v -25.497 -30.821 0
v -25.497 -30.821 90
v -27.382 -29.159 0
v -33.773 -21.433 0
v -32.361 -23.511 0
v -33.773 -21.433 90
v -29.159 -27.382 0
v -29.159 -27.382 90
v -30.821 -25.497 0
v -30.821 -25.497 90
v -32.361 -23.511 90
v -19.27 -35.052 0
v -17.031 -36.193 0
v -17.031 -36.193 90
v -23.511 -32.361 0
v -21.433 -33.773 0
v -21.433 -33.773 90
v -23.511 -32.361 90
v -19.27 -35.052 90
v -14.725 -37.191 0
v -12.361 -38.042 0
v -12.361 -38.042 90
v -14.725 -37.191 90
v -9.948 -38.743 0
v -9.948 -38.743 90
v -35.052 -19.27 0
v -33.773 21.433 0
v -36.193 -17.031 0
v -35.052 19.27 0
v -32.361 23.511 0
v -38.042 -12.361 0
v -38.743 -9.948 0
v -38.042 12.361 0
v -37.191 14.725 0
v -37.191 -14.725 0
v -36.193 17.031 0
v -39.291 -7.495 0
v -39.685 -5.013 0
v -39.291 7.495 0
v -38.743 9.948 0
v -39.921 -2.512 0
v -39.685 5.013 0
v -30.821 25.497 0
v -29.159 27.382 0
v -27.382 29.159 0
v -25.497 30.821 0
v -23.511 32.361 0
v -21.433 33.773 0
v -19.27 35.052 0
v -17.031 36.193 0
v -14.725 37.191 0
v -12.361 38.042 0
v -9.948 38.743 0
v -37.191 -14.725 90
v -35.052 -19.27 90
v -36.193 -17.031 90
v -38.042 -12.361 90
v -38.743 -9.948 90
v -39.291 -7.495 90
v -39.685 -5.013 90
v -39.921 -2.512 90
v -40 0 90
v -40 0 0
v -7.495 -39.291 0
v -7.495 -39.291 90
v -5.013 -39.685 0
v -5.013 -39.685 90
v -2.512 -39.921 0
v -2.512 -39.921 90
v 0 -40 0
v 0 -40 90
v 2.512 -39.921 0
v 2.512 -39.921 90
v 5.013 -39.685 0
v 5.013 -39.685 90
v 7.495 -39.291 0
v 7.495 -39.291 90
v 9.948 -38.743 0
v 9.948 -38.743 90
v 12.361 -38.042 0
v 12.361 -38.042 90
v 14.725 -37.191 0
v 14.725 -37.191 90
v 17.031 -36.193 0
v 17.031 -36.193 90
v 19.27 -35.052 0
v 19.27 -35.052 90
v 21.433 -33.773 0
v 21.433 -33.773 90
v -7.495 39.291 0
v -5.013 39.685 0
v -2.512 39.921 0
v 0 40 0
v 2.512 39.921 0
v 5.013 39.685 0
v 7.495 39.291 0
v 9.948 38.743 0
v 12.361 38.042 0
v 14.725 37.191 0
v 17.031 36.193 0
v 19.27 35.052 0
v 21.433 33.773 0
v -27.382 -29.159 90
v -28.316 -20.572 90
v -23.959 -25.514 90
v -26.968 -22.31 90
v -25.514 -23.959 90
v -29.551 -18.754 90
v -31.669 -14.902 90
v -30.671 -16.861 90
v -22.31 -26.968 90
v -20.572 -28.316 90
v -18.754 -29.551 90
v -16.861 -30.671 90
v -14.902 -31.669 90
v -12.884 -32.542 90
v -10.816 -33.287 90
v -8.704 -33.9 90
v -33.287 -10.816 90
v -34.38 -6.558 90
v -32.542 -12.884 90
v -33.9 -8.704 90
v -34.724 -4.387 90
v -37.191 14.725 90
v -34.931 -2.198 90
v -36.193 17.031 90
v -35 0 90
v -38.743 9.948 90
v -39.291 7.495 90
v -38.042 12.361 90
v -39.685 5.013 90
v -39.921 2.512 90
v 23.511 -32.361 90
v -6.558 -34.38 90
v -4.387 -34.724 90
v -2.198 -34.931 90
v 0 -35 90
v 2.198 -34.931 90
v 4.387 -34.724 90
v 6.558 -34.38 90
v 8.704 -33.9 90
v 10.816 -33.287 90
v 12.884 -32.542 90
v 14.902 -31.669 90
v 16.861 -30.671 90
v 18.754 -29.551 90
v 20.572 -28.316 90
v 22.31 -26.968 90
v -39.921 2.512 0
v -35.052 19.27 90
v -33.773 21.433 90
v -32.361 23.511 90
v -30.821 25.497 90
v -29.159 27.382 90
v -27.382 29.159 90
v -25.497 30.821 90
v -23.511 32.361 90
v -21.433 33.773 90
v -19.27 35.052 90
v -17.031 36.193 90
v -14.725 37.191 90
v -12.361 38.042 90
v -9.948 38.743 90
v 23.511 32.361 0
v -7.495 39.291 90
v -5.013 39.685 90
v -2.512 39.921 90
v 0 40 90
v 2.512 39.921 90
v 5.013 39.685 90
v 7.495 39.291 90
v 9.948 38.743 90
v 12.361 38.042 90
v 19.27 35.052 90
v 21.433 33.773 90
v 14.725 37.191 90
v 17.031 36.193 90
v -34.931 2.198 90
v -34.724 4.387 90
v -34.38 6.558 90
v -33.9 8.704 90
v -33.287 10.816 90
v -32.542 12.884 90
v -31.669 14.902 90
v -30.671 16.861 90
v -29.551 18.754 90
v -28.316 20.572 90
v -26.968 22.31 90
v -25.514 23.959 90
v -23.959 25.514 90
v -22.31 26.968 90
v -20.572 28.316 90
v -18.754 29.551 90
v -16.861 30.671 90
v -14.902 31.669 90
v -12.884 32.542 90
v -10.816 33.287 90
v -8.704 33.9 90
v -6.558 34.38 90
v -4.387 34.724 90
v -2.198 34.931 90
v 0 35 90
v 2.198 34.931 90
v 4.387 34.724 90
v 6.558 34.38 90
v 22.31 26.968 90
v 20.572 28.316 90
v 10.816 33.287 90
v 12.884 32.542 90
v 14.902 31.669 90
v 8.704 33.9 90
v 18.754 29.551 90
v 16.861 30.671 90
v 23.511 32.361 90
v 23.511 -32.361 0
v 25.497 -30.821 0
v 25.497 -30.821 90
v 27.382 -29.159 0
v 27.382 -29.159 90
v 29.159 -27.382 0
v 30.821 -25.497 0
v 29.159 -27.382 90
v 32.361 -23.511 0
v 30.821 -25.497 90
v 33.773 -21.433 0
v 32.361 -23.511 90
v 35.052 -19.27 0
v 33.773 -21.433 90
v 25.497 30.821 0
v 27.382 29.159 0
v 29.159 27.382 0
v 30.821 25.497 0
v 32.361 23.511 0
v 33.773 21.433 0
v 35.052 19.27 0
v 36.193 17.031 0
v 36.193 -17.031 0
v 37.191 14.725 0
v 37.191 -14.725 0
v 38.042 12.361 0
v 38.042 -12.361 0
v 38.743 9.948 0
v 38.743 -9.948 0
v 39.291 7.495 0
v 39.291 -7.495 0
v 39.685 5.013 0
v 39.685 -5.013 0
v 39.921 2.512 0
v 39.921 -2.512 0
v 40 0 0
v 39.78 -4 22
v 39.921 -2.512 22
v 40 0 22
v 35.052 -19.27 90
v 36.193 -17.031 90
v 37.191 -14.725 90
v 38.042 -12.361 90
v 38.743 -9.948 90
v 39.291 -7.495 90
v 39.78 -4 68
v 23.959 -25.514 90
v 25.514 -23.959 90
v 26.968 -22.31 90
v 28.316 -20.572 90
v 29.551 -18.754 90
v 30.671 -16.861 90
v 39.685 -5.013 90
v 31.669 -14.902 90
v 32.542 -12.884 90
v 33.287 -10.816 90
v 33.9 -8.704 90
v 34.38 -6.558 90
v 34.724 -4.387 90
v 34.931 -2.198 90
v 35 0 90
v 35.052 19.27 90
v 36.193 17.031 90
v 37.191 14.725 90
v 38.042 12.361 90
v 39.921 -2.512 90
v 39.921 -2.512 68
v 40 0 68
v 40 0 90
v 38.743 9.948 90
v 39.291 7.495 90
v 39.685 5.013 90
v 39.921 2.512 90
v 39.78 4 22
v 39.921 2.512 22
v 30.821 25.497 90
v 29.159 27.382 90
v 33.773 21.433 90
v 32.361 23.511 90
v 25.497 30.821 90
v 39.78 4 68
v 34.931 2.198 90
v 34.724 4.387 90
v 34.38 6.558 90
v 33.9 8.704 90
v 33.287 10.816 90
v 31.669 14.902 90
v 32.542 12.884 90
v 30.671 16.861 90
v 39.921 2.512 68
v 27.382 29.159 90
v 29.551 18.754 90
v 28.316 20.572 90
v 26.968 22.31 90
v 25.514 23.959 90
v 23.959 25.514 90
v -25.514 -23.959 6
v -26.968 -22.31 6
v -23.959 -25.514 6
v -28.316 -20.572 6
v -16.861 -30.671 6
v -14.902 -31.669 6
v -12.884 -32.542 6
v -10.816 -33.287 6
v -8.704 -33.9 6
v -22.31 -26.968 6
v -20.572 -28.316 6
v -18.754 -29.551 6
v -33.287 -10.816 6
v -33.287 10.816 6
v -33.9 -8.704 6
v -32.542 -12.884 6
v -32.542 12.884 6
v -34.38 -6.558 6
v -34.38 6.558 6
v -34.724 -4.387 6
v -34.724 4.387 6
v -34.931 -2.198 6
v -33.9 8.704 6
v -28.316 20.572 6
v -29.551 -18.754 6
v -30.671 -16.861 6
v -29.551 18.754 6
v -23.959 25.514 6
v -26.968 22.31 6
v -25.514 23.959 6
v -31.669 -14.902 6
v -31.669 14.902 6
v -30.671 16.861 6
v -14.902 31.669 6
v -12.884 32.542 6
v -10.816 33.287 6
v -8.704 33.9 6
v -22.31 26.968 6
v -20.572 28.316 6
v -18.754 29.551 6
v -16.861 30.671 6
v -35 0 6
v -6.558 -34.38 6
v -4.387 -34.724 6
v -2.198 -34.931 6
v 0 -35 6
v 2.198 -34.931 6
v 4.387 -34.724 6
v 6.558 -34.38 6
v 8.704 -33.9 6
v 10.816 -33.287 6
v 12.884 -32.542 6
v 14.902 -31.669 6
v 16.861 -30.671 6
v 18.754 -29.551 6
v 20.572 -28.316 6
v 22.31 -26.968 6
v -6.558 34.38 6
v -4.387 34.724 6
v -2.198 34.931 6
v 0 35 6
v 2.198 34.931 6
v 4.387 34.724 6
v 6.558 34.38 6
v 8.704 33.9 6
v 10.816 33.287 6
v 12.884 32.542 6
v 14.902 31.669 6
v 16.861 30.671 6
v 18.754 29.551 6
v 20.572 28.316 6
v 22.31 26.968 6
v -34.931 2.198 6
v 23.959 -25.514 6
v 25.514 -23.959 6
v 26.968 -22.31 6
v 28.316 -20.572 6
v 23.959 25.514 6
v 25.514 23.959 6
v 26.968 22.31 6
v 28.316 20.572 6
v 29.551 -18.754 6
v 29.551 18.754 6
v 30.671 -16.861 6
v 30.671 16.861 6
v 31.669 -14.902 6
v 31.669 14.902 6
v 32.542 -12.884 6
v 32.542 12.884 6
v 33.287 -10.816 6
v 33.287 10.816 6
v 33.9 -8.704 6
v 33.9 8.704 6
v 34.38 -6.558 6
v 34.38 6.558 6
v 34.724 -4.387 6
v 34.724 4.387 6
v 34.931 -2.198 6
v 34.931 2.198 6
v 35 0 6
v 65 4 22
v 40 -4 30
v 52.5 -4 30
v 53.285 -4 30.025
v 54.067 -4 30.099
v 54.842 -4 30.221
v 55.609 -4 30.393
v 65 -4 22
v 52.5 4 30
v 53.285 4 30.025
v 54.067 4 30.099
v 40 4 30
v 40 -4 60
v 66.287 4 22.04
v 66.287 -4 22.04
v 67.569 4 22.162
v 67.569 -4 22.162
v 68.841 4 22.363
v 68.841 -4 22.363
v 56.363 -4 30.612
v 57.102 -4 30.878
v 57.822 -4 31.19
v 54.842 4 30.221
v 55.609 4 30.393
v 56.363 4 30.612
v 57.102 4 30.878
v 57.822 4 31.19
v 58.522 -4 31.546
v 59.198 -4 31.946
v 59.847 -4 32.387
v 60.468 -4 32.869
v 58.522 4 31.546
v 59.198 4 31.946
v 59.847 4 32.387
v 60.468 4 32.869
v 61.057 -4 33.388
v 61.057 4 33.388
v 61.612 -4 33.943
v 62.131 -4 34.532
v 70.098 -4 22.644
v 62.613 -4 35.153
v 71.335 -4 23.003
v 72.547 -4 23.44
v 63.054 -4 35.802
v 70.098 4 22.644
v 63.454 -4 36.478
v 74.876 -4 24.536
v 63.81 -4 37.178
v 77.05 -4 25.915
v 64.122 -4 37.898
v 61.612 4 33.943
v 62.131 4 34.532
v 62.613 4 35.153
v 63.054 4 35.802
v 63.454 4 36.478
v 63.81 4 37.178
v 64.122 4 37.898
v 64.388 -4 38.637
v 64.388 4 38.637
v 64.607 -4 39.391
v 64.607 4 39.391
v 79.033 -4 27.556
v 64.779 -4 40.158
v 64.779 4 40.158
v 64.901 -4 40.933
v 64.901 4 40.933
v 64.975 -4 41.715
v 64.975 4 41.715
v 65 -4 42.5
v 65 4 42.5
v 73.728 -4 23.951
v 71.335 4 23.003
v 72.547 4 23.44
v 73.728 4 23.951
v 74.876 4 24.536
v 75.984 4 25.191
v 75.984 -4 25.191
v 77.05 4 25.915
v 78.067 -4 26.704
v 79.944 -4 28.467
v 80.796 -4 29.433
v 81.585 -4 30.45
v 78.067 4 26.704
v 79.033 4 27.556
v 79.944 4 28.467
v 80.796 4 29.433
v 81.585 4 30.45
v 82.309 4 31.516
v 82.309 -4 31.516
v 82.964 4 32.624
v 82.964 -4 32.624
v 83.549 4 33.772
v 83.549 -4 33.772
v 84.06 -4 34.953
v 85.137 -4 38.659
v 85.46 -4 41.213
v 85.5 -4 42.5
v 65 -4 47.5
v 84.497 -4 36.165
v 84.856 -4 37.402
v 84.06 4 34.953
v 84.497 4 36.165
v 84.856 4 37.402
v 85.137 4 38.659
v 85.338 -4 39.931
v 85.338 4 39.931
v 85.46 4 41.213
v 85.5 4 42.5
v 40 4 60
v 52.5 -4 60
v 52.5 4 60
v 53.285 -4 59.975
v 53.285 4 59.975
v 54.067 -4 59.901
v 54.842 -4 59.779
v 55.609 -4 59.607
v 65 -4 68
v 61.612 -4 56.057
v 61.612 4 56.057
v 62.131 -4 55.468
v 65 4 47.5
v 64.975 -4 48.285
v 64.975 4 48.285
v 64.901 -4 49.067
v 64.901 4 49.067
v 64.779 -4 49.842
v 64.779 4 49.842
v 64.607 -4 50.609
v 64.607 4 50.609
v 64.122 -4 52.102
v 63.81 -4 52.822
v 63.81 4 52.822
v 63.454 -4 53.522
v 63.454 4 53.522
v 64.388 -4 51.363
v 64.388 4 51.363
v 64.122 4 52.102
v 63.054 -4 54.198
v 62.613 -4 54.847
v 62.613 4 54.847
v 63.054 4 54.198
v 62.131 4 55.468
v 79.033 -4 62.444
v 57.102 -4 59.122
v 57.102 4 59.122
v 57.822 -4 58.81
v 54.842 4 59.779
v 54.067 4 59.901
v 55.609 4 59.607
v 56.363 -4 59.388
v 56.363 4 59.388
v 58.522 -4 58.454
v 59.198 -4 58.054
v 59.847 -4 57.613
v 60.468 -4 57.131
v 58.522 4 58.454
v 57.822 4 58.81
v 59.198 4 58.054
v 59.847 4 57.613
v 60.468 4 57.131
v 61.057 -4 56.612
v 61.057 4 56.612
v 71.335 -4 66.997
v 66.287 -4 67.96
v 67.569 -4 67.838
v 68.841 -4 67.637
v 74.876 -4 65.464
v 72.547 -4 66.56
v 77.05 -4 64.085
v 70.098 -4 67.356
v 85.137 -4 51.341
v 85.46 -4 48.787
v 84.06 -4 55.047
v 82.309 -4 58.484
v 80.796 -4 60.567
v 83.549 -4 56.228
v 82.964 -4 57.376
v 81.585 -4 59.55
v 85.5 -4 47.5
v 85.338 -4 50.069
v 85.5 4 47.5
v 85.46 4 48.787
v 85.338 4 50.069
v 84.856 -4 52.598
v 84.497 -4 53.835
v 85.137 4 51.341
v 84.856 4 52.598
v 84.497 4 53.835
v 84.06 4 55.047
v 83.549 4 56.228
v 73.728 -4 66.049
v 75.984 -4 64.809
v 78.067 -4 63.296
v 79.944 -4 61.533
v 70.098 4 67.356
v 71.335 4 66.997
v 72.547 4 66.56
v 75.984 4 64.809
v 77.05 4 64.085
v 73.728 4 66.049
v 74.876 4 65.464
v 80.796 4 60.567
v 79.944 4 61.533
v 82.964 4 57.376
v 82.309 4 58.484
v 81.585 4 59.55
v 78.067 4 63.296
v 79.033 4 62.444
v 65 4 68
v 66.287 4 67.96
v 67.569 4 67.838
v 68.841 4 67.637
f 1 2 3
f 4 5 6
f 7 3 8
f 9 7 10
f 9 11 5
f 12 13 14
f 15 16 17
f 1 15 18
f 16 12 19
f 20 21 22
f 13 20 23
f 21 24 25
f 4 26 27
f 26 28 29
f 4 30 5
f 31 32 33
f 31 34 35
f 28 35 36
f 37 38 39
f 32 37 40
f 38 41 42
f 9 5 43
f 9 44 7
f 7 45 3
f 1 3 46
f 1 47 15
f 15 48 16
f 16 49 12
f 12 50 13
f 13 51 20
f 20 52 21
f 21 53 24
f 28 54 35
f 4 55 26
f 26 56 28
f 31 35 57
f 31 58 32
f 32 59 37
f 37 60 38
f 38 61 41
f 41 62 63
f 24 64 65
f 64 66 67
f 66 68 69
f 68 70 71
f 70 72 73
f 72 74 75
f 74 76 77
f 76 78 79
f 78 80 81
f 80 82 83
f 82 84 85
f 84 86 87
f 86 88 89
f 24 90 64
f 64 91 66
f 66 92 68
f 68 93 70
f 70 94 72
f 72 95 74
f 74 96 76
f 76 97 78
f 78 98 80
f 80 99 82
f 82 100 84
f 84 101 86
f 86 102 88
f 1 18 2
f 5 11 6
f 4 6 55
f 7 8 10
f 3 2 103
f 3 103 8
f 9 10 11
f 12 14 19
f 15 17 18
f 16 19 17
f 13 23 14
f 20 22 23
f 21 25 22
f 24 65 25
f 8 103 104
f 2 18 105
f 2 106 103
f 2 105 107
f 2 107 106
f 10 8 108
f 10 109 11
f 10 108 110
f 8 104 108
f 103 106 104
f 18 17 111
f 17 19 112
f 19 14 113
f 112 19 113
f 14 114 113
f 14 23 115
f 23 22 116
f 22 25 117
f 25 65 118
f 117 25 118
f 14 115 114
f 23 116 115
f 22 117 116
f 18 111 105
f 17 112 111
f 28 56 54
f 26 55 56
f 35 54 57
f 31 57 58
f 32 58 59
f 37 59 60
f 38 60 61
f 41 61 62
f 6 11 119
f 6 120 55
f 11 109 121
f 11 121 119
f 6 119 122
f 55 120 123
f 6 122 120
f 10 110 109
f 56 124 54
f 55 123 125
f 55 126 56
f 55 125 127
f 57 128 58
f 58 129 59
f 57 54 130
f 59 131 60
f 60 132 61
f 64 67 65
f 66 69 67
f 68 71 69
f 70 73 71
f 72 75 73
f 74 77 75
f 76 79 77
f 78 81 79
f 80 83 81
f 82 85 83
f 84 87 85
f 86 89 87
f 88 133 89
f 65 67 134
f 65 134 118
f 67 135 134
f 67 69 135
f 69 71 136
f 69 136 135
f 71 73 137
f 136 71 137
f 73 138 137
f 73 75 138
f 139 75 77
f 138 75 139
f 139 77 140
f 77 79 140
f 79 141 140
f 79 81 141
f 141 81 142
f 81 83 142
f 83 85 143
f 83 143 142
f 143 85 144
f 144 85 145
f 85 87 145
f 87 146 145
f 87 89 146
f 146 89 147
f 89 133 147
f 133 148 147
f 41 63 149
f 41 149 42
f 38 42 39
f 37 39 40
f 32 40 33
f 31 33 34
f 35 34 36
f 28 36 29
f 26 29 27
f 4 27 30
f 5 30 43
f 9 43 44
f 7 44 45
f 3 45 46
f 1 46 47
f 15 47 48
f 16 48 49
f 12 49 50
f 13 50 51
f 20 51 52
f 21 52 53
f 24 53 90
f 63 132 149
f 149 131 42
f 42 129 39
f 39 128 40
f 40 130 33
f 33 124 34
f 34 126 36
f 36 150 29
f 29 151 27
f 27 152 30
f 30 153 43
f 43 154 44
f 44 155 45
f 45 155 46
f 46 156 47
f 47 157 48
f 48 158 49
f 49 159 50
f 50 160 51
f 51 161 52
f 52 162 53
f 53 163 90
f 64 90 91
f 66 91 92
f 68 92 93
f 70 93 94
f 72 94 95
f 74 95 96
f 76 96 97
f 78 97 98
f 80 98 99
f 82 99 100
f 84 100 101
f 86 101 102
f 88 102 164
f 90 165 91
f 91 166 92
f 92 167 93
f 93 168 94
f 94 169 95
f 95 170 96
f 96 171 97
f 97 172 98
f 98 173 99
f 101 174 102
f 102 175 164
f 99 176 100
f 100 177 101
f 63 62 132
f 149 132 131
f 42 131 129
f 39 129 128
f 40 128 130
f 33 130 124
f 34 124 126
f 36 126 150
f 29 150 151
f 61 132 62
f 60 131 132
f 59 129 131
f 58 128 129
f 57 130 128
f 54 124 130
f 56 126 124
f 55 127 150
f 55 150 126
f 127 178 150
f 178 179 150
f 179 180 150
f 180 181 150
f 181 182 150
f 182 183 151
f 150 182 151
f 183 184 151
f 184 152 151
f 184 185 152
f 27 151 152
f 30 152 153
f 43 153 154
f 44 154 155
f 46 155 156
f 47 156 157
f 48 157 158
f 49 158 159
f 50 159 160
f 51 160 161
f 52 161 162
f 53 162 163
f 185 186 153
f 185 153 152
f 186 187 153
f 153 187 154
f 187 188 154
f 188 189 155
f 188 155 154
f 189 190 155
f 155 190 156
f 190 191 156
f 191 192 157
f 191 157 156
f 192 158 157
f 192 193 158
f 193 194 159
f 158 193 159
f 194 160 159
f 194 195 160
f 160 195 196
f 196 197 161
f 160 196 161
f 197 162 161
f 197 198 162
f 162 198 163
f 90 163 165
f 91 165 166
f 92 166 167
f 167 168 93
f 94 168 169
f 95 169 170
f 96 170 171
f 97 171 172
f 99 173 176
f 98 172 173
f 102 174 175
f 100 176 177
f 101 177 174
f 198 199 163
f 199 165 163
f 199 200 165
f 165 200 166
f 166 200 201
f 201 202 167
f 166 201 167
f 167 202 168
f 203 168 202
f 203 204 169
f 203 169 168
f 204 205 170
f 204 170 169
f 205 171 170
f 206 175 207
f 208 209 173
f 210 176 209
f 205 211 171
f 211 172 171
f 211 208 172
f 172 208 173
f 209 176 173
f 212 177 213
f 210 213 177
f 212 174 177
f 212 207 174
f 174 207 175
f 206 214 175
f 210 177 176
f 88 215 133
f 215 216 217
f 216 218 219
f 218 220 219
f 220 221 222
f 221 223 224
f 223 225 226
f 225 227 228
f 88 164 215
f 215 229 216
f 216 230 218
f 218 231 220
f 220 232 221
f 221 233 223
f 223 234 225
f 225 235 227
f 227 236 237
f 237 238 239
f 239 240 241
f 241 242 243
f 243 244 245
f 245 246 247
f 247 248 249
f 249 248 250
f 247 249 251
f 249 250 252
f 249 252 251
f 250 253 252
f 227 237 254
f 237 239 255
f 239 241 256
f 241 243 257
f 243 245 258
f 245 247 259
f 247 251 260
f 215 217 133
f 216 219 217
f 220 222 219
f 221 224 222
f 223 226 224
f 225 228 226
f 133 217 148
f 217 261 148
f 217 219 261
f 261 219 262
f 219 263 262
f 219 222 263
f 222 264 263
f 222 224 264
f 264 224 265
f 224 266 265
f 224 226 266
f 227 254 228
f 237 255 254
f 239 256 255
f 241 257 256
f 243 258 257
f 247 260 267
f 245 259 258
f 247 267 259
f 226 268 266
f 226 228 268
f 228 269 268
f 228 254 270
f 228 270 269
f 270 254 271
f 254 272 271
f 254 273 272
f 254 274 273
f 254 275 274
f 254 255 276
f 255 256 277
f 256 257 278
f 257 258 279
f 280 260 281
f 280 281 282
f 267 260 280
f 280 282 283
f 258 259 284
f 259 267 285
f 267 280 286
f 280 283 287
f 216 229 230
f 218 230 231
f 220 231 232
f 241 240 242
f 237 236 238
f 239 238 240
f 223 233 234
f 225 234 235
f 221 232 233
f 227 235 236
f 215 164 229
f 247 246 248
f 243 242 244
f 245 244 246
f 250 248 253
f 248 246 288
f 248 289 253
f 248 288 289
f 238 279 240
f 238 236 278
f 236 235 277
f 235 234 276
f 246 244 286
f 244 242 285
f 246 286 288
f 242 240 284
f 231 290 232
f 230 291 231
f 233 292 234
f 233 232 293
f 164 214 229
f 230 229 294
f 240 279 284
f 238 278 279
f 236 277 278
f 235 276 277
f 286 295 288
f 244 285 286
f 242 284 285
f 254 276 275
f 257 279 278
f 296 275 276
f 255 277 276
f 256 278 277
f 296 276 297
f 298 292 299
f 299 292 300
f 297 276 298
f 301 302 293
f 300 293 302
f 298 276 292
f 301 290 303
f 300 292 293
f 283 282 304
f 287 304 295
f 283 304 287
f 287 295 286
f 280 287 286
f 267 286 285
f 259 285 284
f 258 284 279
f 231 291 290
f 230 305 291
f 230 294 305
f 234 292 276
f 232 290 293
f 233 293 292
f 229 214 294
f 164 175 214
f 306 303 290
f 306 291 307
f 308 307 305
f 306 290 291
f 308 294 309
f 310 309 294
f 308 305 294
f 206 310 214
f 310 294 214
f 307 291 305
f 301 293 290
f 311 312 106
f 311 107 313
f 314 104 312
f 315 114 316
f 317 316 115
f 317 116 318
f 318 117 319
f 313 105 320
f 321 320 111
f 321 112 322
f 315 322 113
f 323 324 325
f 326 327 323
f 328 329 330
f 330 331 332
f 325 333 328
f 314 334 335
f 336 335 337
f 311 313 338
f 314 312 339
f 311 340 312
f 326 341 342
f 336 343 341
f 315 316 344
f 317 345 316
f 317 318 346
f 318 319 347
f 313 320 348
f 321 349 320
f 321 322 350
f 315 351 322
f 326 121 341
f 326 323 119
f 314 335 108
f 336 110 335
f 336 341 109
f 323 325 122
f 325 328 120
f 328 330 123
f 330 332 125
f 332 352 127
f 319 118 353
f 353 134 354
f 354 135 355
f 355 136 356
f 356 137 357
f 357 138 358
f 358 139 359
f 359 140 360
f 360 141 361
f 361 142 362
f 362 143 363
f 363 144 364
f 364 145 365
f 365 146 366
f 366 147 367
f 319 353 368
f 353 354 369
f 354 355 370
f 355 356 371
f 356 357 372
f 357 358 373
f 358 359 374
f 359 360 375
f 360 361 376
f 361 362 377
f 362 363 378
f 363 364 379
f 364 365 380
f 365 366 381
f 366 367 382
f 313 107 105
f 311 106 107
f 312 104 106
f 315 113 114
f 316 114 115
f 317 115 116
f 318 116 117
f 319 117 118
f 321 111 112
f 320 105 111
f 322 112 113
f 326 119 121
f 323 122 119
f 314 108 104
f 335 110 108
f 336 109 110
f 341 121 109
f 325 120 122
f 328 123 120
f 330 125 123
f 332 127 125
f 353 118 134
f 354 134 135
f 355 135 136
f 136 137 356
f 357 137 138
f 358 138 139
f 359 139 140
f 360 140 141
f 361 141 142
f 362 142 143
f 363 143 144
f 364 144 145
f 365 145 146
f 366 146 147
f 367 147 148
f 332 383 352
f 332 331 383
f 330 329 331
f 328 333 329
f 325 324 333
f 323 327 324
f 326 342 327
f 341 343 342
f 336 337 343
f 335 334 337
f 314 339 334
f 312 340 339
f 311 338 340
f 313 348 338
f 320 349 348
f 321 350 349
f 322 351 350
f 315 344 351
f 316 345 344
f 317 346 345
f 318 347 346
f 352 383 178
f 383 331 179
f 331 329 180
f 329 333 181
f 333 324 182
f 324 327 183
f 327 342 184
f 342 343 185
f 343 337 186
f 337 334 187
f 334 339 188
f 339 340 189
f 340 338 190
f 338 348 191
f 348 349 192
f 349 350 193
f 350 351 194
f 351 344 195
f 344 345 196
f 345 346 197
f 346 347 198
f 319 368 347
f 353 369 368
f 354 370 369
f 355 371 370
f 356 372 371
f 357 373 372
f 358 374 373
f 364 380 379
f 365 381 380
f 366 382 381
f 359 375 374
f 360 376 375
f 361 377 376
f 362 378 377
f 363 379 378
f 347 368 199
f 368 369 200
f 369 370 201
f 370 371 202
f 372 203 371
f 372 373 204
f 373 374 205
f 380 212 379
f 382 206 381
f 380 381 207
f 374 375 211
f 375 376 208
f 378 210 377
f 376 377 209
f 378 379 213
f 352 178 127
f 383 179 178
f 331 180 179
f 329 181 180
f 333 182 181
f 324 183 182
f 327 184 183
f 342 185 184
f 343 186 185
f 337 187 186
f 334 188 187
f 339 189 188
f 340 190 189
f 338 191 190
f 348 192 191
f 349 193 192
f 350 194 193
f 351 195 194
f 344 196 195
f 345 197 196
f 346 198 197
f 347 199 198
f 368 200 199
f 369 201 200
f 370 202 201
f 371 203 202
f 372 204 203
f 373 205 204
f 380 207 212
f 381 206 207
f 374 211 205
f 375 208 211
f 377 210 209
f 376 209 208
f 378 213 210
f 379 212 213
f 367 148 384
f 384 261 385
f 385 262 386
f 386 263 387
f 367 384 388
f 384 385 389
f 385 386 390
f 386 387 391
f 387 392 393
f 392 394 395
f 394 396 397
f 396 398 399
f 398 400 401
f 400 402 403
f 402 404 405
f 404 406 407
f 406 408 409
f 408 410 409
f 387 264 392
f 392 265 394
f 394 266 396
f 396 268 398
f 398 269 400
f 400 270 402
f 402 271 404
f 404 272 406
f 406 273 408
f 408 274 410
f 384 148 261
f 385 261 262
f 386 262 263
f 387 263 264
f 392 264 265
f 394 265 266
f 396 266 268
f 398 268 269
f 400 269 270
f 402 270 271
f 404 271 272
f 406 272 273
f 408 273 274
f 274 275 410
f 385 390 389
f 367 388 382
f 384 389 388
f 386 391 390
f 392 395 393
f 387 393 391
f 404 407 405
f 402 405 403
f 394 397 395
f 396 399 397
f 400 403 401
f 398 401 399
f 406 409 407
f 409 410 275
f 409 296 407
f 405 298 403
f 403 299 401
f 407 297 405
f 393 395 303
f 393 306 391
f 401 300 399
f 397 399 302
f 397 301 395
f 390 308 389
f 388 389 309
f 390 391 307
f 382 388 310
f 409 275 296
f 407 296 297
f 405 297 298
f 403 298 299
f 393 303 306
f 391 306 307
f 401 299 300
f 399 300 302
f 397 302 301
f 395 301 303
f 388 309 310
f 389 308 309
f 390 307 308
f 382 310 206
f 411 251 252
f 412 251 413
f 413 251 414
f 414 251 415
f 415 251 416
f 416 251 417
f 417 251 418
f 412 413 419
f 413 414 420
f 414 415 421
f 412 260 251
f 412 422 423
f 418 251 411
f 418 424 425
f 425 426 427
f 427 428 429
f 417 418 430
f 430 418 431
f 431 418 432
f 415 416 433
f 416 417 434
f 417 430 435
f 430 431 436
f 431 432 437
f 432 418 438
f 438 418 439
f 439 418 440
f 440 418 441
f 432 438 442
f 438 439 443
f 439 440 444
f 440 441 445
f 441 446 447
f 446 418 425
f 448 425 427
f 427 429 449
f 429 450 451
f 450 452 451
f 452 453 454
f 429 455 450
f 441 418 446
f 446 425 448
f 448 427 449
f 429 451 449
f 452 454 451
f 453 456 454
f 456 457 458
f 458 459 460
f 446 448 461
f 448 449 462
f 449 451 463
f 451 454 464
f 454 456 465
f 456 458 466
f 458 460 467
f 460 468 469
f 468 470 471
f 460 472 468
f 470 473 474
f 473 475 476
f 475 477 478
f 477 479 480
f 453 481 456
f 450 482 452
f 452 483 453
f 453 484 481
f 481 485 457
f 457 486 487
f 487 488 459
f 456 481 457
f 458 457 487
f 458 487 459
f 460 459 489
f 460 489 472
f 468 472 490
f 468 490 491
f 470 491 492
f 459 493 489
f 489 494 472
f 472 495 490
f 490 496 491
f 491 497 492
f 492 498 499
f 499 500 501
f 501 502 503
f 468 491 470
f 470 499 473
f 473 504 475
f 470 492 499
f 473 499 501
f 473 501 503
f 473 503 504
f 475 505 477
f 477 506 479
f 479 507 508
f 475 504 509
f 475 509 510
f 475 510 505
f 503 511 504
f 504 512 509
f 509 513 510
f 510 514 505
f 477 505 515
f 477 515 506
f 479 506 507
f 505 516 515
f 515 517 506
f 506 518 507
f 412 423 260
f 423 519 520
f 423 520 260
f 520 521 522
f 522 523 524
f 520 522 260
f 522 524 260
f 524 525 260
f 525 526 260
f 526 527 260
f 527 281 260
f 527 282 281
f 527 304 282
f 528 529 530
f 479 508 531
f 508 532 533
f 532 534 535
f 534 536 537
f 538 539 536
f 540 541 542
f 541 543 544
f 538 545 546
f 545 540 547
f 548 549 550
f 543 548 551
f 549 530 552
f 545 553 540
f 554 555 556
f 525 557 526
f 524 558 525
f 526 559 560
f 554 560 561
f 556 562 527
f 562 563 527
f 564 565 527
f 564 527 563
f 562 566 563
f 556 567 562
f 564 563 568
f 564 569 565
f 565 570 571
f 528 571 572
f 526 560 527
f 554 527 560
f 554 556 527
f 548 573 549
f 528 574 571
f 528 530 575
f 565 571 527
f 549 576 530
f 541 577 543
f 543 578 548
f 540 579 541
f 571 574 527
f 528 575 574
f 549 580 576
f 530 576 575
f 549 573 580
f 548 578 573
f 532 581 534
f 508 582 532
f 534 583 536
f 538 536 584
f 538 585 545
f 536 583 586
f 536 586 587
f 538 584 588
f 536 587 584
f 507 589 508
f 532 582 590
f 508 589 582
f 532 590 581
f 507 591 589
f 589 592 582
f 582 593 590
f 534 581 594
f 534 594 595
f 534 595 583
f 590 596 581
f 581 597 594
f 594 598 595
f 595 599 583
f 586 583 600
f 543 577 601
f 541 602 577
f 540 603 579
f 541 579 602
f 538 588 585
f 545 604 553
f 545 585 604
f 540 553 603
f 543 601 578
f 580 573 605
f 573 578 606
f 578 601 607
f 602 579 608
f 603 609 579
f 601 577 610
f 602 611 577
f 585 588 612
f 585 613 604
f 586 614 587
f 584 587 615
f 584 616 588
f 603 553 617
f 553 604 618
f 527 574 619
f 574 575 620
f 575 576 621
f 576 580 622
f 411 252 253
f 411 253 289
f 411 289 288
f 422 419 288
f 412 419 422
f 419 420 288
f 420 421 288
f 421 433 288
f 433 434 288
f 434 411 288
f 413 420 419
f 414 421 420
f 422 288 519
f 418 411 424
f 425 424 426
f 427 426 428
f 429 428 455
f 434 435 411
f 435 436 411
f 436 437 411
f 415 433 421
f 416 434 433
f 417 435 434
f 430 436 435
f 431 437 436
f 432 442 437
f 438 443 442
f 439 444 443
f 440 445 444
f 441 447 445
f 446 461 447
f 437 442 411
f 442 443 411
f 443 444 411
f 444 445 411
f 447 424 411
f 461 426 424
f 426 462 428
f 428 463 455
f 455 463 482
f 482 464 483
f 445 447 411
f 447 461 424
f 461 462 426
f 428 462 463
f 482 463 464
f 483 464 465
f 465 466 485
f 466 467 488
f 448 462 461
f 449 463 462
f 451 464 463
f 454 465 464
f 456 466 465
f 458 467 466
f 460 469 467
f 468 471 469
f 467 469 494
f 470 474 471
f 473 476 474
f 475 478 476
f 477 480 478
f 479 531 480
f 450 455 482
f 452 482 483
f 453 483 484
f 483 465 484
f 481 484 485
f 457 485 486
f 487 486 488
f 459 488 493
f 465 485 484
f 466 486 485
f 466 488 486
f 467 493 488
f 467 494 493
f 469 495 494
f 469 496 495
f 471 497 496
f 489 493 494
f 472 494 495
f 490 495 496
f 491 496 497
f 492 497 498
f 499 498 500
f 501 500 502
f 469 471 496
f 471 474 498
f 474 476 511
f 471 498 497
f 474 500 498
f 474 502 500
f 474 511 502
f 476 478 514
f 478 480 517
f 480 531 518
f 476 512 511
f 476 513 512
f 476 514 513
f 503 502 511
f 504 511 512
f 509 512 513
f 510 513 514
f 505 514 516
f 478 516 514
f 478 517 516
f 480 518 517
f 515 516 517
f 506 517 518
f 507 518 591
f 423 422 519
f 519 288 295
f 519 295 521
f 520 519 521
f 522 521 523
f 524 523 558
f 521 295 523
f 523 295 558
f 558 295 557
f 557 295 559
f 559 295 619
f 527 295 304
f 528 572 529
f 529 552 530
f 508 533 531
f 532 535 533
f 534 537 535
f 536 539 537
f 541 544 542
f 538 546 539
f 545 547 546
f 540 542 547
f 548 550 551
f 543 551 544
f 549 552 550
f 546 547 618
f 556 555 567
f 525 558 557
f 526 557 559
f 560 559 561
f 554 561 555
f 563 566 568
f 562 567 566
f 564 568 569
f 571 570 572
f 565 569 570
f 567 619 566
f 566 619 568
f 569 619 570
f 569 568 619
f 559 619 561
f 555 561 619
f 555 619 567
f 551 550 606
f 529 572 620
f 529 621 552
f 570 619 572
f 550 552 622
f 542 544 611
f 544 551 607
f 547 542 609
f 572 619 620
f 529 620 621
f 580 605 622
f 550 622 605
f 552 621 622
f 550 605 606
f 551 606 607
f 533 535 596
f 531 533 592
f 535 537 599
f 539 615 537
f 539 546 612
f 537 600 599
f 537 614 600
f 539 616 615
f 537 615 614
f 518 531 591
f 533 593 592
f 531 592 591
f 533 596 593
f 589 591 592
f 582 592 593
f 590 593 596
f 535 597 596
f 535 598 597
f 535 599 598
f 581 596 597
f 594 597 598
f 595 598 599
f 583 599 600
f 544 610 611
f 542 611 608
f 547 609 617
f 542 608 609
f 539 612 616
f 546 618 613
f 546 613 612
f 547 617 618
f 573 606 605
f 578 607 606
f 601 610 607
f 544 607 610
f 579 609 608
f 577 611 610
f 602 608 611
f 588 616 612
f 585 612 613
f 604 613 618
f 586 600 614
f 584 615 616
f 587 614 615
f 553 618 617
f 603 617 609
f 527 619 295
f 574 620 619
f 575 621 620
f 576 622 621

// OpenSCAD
$fn = 100;

// マグ本体パラメータ
outer_r = 80 / 2; // 外半径 40mm
inner_r = 70 / 2; // 内半径 35mm
height = 90;      // 高さ 90mm
bottom_t = 6;     // 底の厚み 6mm

// 取手パラメータ
handle_w = 25;    // 取手内側空間の幅 (X方向)
handle_h = 30;    // 取手内側空間の高さ (Z方向)
handle_t = 8;     // 取手の断面太さ (肉厚)

module mug_body() {
    difference() {
        cylinder(r = outer_r, h = height);
        translate([0, 0, bottom_t])
            cylinder(r = inner_r, h = height - bottom_t + 1);
    }
}

module handle() {
    // 高さ方向の中央に配置 (Z = height / 2)
    translate([0, 0, height / 2]) {
        // 取手断面をY軸まわりに回転させて押し出すため、XZ平面上で作図
        rotate([90, 0, 0]) {
            linear_extrude(height = handle_t, center = true) {
                difference() {
                    // 外形: 本体内部にめり込ませて接続を確実にするため、本体中心側(X=outer_r-2)から開始
                    hull() {
                        // 本体接続部 (直線側)
                        translate([outer_r - 2, -(handle_h / 2 + handle_t)])
                            square([1, handle_h + handle_t * 2]);
                        
                        // 外側の半円部
                        translate([outer_r + handle_w, -(handle_h - handle_w) / 2])
                            circle(r = handle_w / 2 + handle_t);
                        translate([outer_r + handle_w, (handle_h - handle_w) / 2])
                            circle(r = handle_w / 2 + handle_t);
                    }
                    
                    // 内側の空間: 高さ 30mm × 幅 25mm
                    hull() {
                        // 本体側エッジ
                        translate([outer_r, -handle_h / 2])
                            square([0.1, handle_h]);
                        
                        // 外側丸み
                        translate([outer_r + handle_w - handle_w / 2, -(handle_h - handle_w) / 2])
                            circle(r = handle_w / 2);
                        translate([outer_r + handle_w - handle_w / 2, (handle_h - handle_w) / 2])
                            circle(r = handle_w / 2);
                    }
                }
            }
        }
    }
}

// 結合
union() {
    mug_body();
    // 取手の内側がマグの内腔に貫通しないように本体内側を再差分
    difference() {
        handle();
        translate([0, 0, bottom_t])
            cylinder(r = inner_r, h = height - bottom_t + 1);
    }
}
